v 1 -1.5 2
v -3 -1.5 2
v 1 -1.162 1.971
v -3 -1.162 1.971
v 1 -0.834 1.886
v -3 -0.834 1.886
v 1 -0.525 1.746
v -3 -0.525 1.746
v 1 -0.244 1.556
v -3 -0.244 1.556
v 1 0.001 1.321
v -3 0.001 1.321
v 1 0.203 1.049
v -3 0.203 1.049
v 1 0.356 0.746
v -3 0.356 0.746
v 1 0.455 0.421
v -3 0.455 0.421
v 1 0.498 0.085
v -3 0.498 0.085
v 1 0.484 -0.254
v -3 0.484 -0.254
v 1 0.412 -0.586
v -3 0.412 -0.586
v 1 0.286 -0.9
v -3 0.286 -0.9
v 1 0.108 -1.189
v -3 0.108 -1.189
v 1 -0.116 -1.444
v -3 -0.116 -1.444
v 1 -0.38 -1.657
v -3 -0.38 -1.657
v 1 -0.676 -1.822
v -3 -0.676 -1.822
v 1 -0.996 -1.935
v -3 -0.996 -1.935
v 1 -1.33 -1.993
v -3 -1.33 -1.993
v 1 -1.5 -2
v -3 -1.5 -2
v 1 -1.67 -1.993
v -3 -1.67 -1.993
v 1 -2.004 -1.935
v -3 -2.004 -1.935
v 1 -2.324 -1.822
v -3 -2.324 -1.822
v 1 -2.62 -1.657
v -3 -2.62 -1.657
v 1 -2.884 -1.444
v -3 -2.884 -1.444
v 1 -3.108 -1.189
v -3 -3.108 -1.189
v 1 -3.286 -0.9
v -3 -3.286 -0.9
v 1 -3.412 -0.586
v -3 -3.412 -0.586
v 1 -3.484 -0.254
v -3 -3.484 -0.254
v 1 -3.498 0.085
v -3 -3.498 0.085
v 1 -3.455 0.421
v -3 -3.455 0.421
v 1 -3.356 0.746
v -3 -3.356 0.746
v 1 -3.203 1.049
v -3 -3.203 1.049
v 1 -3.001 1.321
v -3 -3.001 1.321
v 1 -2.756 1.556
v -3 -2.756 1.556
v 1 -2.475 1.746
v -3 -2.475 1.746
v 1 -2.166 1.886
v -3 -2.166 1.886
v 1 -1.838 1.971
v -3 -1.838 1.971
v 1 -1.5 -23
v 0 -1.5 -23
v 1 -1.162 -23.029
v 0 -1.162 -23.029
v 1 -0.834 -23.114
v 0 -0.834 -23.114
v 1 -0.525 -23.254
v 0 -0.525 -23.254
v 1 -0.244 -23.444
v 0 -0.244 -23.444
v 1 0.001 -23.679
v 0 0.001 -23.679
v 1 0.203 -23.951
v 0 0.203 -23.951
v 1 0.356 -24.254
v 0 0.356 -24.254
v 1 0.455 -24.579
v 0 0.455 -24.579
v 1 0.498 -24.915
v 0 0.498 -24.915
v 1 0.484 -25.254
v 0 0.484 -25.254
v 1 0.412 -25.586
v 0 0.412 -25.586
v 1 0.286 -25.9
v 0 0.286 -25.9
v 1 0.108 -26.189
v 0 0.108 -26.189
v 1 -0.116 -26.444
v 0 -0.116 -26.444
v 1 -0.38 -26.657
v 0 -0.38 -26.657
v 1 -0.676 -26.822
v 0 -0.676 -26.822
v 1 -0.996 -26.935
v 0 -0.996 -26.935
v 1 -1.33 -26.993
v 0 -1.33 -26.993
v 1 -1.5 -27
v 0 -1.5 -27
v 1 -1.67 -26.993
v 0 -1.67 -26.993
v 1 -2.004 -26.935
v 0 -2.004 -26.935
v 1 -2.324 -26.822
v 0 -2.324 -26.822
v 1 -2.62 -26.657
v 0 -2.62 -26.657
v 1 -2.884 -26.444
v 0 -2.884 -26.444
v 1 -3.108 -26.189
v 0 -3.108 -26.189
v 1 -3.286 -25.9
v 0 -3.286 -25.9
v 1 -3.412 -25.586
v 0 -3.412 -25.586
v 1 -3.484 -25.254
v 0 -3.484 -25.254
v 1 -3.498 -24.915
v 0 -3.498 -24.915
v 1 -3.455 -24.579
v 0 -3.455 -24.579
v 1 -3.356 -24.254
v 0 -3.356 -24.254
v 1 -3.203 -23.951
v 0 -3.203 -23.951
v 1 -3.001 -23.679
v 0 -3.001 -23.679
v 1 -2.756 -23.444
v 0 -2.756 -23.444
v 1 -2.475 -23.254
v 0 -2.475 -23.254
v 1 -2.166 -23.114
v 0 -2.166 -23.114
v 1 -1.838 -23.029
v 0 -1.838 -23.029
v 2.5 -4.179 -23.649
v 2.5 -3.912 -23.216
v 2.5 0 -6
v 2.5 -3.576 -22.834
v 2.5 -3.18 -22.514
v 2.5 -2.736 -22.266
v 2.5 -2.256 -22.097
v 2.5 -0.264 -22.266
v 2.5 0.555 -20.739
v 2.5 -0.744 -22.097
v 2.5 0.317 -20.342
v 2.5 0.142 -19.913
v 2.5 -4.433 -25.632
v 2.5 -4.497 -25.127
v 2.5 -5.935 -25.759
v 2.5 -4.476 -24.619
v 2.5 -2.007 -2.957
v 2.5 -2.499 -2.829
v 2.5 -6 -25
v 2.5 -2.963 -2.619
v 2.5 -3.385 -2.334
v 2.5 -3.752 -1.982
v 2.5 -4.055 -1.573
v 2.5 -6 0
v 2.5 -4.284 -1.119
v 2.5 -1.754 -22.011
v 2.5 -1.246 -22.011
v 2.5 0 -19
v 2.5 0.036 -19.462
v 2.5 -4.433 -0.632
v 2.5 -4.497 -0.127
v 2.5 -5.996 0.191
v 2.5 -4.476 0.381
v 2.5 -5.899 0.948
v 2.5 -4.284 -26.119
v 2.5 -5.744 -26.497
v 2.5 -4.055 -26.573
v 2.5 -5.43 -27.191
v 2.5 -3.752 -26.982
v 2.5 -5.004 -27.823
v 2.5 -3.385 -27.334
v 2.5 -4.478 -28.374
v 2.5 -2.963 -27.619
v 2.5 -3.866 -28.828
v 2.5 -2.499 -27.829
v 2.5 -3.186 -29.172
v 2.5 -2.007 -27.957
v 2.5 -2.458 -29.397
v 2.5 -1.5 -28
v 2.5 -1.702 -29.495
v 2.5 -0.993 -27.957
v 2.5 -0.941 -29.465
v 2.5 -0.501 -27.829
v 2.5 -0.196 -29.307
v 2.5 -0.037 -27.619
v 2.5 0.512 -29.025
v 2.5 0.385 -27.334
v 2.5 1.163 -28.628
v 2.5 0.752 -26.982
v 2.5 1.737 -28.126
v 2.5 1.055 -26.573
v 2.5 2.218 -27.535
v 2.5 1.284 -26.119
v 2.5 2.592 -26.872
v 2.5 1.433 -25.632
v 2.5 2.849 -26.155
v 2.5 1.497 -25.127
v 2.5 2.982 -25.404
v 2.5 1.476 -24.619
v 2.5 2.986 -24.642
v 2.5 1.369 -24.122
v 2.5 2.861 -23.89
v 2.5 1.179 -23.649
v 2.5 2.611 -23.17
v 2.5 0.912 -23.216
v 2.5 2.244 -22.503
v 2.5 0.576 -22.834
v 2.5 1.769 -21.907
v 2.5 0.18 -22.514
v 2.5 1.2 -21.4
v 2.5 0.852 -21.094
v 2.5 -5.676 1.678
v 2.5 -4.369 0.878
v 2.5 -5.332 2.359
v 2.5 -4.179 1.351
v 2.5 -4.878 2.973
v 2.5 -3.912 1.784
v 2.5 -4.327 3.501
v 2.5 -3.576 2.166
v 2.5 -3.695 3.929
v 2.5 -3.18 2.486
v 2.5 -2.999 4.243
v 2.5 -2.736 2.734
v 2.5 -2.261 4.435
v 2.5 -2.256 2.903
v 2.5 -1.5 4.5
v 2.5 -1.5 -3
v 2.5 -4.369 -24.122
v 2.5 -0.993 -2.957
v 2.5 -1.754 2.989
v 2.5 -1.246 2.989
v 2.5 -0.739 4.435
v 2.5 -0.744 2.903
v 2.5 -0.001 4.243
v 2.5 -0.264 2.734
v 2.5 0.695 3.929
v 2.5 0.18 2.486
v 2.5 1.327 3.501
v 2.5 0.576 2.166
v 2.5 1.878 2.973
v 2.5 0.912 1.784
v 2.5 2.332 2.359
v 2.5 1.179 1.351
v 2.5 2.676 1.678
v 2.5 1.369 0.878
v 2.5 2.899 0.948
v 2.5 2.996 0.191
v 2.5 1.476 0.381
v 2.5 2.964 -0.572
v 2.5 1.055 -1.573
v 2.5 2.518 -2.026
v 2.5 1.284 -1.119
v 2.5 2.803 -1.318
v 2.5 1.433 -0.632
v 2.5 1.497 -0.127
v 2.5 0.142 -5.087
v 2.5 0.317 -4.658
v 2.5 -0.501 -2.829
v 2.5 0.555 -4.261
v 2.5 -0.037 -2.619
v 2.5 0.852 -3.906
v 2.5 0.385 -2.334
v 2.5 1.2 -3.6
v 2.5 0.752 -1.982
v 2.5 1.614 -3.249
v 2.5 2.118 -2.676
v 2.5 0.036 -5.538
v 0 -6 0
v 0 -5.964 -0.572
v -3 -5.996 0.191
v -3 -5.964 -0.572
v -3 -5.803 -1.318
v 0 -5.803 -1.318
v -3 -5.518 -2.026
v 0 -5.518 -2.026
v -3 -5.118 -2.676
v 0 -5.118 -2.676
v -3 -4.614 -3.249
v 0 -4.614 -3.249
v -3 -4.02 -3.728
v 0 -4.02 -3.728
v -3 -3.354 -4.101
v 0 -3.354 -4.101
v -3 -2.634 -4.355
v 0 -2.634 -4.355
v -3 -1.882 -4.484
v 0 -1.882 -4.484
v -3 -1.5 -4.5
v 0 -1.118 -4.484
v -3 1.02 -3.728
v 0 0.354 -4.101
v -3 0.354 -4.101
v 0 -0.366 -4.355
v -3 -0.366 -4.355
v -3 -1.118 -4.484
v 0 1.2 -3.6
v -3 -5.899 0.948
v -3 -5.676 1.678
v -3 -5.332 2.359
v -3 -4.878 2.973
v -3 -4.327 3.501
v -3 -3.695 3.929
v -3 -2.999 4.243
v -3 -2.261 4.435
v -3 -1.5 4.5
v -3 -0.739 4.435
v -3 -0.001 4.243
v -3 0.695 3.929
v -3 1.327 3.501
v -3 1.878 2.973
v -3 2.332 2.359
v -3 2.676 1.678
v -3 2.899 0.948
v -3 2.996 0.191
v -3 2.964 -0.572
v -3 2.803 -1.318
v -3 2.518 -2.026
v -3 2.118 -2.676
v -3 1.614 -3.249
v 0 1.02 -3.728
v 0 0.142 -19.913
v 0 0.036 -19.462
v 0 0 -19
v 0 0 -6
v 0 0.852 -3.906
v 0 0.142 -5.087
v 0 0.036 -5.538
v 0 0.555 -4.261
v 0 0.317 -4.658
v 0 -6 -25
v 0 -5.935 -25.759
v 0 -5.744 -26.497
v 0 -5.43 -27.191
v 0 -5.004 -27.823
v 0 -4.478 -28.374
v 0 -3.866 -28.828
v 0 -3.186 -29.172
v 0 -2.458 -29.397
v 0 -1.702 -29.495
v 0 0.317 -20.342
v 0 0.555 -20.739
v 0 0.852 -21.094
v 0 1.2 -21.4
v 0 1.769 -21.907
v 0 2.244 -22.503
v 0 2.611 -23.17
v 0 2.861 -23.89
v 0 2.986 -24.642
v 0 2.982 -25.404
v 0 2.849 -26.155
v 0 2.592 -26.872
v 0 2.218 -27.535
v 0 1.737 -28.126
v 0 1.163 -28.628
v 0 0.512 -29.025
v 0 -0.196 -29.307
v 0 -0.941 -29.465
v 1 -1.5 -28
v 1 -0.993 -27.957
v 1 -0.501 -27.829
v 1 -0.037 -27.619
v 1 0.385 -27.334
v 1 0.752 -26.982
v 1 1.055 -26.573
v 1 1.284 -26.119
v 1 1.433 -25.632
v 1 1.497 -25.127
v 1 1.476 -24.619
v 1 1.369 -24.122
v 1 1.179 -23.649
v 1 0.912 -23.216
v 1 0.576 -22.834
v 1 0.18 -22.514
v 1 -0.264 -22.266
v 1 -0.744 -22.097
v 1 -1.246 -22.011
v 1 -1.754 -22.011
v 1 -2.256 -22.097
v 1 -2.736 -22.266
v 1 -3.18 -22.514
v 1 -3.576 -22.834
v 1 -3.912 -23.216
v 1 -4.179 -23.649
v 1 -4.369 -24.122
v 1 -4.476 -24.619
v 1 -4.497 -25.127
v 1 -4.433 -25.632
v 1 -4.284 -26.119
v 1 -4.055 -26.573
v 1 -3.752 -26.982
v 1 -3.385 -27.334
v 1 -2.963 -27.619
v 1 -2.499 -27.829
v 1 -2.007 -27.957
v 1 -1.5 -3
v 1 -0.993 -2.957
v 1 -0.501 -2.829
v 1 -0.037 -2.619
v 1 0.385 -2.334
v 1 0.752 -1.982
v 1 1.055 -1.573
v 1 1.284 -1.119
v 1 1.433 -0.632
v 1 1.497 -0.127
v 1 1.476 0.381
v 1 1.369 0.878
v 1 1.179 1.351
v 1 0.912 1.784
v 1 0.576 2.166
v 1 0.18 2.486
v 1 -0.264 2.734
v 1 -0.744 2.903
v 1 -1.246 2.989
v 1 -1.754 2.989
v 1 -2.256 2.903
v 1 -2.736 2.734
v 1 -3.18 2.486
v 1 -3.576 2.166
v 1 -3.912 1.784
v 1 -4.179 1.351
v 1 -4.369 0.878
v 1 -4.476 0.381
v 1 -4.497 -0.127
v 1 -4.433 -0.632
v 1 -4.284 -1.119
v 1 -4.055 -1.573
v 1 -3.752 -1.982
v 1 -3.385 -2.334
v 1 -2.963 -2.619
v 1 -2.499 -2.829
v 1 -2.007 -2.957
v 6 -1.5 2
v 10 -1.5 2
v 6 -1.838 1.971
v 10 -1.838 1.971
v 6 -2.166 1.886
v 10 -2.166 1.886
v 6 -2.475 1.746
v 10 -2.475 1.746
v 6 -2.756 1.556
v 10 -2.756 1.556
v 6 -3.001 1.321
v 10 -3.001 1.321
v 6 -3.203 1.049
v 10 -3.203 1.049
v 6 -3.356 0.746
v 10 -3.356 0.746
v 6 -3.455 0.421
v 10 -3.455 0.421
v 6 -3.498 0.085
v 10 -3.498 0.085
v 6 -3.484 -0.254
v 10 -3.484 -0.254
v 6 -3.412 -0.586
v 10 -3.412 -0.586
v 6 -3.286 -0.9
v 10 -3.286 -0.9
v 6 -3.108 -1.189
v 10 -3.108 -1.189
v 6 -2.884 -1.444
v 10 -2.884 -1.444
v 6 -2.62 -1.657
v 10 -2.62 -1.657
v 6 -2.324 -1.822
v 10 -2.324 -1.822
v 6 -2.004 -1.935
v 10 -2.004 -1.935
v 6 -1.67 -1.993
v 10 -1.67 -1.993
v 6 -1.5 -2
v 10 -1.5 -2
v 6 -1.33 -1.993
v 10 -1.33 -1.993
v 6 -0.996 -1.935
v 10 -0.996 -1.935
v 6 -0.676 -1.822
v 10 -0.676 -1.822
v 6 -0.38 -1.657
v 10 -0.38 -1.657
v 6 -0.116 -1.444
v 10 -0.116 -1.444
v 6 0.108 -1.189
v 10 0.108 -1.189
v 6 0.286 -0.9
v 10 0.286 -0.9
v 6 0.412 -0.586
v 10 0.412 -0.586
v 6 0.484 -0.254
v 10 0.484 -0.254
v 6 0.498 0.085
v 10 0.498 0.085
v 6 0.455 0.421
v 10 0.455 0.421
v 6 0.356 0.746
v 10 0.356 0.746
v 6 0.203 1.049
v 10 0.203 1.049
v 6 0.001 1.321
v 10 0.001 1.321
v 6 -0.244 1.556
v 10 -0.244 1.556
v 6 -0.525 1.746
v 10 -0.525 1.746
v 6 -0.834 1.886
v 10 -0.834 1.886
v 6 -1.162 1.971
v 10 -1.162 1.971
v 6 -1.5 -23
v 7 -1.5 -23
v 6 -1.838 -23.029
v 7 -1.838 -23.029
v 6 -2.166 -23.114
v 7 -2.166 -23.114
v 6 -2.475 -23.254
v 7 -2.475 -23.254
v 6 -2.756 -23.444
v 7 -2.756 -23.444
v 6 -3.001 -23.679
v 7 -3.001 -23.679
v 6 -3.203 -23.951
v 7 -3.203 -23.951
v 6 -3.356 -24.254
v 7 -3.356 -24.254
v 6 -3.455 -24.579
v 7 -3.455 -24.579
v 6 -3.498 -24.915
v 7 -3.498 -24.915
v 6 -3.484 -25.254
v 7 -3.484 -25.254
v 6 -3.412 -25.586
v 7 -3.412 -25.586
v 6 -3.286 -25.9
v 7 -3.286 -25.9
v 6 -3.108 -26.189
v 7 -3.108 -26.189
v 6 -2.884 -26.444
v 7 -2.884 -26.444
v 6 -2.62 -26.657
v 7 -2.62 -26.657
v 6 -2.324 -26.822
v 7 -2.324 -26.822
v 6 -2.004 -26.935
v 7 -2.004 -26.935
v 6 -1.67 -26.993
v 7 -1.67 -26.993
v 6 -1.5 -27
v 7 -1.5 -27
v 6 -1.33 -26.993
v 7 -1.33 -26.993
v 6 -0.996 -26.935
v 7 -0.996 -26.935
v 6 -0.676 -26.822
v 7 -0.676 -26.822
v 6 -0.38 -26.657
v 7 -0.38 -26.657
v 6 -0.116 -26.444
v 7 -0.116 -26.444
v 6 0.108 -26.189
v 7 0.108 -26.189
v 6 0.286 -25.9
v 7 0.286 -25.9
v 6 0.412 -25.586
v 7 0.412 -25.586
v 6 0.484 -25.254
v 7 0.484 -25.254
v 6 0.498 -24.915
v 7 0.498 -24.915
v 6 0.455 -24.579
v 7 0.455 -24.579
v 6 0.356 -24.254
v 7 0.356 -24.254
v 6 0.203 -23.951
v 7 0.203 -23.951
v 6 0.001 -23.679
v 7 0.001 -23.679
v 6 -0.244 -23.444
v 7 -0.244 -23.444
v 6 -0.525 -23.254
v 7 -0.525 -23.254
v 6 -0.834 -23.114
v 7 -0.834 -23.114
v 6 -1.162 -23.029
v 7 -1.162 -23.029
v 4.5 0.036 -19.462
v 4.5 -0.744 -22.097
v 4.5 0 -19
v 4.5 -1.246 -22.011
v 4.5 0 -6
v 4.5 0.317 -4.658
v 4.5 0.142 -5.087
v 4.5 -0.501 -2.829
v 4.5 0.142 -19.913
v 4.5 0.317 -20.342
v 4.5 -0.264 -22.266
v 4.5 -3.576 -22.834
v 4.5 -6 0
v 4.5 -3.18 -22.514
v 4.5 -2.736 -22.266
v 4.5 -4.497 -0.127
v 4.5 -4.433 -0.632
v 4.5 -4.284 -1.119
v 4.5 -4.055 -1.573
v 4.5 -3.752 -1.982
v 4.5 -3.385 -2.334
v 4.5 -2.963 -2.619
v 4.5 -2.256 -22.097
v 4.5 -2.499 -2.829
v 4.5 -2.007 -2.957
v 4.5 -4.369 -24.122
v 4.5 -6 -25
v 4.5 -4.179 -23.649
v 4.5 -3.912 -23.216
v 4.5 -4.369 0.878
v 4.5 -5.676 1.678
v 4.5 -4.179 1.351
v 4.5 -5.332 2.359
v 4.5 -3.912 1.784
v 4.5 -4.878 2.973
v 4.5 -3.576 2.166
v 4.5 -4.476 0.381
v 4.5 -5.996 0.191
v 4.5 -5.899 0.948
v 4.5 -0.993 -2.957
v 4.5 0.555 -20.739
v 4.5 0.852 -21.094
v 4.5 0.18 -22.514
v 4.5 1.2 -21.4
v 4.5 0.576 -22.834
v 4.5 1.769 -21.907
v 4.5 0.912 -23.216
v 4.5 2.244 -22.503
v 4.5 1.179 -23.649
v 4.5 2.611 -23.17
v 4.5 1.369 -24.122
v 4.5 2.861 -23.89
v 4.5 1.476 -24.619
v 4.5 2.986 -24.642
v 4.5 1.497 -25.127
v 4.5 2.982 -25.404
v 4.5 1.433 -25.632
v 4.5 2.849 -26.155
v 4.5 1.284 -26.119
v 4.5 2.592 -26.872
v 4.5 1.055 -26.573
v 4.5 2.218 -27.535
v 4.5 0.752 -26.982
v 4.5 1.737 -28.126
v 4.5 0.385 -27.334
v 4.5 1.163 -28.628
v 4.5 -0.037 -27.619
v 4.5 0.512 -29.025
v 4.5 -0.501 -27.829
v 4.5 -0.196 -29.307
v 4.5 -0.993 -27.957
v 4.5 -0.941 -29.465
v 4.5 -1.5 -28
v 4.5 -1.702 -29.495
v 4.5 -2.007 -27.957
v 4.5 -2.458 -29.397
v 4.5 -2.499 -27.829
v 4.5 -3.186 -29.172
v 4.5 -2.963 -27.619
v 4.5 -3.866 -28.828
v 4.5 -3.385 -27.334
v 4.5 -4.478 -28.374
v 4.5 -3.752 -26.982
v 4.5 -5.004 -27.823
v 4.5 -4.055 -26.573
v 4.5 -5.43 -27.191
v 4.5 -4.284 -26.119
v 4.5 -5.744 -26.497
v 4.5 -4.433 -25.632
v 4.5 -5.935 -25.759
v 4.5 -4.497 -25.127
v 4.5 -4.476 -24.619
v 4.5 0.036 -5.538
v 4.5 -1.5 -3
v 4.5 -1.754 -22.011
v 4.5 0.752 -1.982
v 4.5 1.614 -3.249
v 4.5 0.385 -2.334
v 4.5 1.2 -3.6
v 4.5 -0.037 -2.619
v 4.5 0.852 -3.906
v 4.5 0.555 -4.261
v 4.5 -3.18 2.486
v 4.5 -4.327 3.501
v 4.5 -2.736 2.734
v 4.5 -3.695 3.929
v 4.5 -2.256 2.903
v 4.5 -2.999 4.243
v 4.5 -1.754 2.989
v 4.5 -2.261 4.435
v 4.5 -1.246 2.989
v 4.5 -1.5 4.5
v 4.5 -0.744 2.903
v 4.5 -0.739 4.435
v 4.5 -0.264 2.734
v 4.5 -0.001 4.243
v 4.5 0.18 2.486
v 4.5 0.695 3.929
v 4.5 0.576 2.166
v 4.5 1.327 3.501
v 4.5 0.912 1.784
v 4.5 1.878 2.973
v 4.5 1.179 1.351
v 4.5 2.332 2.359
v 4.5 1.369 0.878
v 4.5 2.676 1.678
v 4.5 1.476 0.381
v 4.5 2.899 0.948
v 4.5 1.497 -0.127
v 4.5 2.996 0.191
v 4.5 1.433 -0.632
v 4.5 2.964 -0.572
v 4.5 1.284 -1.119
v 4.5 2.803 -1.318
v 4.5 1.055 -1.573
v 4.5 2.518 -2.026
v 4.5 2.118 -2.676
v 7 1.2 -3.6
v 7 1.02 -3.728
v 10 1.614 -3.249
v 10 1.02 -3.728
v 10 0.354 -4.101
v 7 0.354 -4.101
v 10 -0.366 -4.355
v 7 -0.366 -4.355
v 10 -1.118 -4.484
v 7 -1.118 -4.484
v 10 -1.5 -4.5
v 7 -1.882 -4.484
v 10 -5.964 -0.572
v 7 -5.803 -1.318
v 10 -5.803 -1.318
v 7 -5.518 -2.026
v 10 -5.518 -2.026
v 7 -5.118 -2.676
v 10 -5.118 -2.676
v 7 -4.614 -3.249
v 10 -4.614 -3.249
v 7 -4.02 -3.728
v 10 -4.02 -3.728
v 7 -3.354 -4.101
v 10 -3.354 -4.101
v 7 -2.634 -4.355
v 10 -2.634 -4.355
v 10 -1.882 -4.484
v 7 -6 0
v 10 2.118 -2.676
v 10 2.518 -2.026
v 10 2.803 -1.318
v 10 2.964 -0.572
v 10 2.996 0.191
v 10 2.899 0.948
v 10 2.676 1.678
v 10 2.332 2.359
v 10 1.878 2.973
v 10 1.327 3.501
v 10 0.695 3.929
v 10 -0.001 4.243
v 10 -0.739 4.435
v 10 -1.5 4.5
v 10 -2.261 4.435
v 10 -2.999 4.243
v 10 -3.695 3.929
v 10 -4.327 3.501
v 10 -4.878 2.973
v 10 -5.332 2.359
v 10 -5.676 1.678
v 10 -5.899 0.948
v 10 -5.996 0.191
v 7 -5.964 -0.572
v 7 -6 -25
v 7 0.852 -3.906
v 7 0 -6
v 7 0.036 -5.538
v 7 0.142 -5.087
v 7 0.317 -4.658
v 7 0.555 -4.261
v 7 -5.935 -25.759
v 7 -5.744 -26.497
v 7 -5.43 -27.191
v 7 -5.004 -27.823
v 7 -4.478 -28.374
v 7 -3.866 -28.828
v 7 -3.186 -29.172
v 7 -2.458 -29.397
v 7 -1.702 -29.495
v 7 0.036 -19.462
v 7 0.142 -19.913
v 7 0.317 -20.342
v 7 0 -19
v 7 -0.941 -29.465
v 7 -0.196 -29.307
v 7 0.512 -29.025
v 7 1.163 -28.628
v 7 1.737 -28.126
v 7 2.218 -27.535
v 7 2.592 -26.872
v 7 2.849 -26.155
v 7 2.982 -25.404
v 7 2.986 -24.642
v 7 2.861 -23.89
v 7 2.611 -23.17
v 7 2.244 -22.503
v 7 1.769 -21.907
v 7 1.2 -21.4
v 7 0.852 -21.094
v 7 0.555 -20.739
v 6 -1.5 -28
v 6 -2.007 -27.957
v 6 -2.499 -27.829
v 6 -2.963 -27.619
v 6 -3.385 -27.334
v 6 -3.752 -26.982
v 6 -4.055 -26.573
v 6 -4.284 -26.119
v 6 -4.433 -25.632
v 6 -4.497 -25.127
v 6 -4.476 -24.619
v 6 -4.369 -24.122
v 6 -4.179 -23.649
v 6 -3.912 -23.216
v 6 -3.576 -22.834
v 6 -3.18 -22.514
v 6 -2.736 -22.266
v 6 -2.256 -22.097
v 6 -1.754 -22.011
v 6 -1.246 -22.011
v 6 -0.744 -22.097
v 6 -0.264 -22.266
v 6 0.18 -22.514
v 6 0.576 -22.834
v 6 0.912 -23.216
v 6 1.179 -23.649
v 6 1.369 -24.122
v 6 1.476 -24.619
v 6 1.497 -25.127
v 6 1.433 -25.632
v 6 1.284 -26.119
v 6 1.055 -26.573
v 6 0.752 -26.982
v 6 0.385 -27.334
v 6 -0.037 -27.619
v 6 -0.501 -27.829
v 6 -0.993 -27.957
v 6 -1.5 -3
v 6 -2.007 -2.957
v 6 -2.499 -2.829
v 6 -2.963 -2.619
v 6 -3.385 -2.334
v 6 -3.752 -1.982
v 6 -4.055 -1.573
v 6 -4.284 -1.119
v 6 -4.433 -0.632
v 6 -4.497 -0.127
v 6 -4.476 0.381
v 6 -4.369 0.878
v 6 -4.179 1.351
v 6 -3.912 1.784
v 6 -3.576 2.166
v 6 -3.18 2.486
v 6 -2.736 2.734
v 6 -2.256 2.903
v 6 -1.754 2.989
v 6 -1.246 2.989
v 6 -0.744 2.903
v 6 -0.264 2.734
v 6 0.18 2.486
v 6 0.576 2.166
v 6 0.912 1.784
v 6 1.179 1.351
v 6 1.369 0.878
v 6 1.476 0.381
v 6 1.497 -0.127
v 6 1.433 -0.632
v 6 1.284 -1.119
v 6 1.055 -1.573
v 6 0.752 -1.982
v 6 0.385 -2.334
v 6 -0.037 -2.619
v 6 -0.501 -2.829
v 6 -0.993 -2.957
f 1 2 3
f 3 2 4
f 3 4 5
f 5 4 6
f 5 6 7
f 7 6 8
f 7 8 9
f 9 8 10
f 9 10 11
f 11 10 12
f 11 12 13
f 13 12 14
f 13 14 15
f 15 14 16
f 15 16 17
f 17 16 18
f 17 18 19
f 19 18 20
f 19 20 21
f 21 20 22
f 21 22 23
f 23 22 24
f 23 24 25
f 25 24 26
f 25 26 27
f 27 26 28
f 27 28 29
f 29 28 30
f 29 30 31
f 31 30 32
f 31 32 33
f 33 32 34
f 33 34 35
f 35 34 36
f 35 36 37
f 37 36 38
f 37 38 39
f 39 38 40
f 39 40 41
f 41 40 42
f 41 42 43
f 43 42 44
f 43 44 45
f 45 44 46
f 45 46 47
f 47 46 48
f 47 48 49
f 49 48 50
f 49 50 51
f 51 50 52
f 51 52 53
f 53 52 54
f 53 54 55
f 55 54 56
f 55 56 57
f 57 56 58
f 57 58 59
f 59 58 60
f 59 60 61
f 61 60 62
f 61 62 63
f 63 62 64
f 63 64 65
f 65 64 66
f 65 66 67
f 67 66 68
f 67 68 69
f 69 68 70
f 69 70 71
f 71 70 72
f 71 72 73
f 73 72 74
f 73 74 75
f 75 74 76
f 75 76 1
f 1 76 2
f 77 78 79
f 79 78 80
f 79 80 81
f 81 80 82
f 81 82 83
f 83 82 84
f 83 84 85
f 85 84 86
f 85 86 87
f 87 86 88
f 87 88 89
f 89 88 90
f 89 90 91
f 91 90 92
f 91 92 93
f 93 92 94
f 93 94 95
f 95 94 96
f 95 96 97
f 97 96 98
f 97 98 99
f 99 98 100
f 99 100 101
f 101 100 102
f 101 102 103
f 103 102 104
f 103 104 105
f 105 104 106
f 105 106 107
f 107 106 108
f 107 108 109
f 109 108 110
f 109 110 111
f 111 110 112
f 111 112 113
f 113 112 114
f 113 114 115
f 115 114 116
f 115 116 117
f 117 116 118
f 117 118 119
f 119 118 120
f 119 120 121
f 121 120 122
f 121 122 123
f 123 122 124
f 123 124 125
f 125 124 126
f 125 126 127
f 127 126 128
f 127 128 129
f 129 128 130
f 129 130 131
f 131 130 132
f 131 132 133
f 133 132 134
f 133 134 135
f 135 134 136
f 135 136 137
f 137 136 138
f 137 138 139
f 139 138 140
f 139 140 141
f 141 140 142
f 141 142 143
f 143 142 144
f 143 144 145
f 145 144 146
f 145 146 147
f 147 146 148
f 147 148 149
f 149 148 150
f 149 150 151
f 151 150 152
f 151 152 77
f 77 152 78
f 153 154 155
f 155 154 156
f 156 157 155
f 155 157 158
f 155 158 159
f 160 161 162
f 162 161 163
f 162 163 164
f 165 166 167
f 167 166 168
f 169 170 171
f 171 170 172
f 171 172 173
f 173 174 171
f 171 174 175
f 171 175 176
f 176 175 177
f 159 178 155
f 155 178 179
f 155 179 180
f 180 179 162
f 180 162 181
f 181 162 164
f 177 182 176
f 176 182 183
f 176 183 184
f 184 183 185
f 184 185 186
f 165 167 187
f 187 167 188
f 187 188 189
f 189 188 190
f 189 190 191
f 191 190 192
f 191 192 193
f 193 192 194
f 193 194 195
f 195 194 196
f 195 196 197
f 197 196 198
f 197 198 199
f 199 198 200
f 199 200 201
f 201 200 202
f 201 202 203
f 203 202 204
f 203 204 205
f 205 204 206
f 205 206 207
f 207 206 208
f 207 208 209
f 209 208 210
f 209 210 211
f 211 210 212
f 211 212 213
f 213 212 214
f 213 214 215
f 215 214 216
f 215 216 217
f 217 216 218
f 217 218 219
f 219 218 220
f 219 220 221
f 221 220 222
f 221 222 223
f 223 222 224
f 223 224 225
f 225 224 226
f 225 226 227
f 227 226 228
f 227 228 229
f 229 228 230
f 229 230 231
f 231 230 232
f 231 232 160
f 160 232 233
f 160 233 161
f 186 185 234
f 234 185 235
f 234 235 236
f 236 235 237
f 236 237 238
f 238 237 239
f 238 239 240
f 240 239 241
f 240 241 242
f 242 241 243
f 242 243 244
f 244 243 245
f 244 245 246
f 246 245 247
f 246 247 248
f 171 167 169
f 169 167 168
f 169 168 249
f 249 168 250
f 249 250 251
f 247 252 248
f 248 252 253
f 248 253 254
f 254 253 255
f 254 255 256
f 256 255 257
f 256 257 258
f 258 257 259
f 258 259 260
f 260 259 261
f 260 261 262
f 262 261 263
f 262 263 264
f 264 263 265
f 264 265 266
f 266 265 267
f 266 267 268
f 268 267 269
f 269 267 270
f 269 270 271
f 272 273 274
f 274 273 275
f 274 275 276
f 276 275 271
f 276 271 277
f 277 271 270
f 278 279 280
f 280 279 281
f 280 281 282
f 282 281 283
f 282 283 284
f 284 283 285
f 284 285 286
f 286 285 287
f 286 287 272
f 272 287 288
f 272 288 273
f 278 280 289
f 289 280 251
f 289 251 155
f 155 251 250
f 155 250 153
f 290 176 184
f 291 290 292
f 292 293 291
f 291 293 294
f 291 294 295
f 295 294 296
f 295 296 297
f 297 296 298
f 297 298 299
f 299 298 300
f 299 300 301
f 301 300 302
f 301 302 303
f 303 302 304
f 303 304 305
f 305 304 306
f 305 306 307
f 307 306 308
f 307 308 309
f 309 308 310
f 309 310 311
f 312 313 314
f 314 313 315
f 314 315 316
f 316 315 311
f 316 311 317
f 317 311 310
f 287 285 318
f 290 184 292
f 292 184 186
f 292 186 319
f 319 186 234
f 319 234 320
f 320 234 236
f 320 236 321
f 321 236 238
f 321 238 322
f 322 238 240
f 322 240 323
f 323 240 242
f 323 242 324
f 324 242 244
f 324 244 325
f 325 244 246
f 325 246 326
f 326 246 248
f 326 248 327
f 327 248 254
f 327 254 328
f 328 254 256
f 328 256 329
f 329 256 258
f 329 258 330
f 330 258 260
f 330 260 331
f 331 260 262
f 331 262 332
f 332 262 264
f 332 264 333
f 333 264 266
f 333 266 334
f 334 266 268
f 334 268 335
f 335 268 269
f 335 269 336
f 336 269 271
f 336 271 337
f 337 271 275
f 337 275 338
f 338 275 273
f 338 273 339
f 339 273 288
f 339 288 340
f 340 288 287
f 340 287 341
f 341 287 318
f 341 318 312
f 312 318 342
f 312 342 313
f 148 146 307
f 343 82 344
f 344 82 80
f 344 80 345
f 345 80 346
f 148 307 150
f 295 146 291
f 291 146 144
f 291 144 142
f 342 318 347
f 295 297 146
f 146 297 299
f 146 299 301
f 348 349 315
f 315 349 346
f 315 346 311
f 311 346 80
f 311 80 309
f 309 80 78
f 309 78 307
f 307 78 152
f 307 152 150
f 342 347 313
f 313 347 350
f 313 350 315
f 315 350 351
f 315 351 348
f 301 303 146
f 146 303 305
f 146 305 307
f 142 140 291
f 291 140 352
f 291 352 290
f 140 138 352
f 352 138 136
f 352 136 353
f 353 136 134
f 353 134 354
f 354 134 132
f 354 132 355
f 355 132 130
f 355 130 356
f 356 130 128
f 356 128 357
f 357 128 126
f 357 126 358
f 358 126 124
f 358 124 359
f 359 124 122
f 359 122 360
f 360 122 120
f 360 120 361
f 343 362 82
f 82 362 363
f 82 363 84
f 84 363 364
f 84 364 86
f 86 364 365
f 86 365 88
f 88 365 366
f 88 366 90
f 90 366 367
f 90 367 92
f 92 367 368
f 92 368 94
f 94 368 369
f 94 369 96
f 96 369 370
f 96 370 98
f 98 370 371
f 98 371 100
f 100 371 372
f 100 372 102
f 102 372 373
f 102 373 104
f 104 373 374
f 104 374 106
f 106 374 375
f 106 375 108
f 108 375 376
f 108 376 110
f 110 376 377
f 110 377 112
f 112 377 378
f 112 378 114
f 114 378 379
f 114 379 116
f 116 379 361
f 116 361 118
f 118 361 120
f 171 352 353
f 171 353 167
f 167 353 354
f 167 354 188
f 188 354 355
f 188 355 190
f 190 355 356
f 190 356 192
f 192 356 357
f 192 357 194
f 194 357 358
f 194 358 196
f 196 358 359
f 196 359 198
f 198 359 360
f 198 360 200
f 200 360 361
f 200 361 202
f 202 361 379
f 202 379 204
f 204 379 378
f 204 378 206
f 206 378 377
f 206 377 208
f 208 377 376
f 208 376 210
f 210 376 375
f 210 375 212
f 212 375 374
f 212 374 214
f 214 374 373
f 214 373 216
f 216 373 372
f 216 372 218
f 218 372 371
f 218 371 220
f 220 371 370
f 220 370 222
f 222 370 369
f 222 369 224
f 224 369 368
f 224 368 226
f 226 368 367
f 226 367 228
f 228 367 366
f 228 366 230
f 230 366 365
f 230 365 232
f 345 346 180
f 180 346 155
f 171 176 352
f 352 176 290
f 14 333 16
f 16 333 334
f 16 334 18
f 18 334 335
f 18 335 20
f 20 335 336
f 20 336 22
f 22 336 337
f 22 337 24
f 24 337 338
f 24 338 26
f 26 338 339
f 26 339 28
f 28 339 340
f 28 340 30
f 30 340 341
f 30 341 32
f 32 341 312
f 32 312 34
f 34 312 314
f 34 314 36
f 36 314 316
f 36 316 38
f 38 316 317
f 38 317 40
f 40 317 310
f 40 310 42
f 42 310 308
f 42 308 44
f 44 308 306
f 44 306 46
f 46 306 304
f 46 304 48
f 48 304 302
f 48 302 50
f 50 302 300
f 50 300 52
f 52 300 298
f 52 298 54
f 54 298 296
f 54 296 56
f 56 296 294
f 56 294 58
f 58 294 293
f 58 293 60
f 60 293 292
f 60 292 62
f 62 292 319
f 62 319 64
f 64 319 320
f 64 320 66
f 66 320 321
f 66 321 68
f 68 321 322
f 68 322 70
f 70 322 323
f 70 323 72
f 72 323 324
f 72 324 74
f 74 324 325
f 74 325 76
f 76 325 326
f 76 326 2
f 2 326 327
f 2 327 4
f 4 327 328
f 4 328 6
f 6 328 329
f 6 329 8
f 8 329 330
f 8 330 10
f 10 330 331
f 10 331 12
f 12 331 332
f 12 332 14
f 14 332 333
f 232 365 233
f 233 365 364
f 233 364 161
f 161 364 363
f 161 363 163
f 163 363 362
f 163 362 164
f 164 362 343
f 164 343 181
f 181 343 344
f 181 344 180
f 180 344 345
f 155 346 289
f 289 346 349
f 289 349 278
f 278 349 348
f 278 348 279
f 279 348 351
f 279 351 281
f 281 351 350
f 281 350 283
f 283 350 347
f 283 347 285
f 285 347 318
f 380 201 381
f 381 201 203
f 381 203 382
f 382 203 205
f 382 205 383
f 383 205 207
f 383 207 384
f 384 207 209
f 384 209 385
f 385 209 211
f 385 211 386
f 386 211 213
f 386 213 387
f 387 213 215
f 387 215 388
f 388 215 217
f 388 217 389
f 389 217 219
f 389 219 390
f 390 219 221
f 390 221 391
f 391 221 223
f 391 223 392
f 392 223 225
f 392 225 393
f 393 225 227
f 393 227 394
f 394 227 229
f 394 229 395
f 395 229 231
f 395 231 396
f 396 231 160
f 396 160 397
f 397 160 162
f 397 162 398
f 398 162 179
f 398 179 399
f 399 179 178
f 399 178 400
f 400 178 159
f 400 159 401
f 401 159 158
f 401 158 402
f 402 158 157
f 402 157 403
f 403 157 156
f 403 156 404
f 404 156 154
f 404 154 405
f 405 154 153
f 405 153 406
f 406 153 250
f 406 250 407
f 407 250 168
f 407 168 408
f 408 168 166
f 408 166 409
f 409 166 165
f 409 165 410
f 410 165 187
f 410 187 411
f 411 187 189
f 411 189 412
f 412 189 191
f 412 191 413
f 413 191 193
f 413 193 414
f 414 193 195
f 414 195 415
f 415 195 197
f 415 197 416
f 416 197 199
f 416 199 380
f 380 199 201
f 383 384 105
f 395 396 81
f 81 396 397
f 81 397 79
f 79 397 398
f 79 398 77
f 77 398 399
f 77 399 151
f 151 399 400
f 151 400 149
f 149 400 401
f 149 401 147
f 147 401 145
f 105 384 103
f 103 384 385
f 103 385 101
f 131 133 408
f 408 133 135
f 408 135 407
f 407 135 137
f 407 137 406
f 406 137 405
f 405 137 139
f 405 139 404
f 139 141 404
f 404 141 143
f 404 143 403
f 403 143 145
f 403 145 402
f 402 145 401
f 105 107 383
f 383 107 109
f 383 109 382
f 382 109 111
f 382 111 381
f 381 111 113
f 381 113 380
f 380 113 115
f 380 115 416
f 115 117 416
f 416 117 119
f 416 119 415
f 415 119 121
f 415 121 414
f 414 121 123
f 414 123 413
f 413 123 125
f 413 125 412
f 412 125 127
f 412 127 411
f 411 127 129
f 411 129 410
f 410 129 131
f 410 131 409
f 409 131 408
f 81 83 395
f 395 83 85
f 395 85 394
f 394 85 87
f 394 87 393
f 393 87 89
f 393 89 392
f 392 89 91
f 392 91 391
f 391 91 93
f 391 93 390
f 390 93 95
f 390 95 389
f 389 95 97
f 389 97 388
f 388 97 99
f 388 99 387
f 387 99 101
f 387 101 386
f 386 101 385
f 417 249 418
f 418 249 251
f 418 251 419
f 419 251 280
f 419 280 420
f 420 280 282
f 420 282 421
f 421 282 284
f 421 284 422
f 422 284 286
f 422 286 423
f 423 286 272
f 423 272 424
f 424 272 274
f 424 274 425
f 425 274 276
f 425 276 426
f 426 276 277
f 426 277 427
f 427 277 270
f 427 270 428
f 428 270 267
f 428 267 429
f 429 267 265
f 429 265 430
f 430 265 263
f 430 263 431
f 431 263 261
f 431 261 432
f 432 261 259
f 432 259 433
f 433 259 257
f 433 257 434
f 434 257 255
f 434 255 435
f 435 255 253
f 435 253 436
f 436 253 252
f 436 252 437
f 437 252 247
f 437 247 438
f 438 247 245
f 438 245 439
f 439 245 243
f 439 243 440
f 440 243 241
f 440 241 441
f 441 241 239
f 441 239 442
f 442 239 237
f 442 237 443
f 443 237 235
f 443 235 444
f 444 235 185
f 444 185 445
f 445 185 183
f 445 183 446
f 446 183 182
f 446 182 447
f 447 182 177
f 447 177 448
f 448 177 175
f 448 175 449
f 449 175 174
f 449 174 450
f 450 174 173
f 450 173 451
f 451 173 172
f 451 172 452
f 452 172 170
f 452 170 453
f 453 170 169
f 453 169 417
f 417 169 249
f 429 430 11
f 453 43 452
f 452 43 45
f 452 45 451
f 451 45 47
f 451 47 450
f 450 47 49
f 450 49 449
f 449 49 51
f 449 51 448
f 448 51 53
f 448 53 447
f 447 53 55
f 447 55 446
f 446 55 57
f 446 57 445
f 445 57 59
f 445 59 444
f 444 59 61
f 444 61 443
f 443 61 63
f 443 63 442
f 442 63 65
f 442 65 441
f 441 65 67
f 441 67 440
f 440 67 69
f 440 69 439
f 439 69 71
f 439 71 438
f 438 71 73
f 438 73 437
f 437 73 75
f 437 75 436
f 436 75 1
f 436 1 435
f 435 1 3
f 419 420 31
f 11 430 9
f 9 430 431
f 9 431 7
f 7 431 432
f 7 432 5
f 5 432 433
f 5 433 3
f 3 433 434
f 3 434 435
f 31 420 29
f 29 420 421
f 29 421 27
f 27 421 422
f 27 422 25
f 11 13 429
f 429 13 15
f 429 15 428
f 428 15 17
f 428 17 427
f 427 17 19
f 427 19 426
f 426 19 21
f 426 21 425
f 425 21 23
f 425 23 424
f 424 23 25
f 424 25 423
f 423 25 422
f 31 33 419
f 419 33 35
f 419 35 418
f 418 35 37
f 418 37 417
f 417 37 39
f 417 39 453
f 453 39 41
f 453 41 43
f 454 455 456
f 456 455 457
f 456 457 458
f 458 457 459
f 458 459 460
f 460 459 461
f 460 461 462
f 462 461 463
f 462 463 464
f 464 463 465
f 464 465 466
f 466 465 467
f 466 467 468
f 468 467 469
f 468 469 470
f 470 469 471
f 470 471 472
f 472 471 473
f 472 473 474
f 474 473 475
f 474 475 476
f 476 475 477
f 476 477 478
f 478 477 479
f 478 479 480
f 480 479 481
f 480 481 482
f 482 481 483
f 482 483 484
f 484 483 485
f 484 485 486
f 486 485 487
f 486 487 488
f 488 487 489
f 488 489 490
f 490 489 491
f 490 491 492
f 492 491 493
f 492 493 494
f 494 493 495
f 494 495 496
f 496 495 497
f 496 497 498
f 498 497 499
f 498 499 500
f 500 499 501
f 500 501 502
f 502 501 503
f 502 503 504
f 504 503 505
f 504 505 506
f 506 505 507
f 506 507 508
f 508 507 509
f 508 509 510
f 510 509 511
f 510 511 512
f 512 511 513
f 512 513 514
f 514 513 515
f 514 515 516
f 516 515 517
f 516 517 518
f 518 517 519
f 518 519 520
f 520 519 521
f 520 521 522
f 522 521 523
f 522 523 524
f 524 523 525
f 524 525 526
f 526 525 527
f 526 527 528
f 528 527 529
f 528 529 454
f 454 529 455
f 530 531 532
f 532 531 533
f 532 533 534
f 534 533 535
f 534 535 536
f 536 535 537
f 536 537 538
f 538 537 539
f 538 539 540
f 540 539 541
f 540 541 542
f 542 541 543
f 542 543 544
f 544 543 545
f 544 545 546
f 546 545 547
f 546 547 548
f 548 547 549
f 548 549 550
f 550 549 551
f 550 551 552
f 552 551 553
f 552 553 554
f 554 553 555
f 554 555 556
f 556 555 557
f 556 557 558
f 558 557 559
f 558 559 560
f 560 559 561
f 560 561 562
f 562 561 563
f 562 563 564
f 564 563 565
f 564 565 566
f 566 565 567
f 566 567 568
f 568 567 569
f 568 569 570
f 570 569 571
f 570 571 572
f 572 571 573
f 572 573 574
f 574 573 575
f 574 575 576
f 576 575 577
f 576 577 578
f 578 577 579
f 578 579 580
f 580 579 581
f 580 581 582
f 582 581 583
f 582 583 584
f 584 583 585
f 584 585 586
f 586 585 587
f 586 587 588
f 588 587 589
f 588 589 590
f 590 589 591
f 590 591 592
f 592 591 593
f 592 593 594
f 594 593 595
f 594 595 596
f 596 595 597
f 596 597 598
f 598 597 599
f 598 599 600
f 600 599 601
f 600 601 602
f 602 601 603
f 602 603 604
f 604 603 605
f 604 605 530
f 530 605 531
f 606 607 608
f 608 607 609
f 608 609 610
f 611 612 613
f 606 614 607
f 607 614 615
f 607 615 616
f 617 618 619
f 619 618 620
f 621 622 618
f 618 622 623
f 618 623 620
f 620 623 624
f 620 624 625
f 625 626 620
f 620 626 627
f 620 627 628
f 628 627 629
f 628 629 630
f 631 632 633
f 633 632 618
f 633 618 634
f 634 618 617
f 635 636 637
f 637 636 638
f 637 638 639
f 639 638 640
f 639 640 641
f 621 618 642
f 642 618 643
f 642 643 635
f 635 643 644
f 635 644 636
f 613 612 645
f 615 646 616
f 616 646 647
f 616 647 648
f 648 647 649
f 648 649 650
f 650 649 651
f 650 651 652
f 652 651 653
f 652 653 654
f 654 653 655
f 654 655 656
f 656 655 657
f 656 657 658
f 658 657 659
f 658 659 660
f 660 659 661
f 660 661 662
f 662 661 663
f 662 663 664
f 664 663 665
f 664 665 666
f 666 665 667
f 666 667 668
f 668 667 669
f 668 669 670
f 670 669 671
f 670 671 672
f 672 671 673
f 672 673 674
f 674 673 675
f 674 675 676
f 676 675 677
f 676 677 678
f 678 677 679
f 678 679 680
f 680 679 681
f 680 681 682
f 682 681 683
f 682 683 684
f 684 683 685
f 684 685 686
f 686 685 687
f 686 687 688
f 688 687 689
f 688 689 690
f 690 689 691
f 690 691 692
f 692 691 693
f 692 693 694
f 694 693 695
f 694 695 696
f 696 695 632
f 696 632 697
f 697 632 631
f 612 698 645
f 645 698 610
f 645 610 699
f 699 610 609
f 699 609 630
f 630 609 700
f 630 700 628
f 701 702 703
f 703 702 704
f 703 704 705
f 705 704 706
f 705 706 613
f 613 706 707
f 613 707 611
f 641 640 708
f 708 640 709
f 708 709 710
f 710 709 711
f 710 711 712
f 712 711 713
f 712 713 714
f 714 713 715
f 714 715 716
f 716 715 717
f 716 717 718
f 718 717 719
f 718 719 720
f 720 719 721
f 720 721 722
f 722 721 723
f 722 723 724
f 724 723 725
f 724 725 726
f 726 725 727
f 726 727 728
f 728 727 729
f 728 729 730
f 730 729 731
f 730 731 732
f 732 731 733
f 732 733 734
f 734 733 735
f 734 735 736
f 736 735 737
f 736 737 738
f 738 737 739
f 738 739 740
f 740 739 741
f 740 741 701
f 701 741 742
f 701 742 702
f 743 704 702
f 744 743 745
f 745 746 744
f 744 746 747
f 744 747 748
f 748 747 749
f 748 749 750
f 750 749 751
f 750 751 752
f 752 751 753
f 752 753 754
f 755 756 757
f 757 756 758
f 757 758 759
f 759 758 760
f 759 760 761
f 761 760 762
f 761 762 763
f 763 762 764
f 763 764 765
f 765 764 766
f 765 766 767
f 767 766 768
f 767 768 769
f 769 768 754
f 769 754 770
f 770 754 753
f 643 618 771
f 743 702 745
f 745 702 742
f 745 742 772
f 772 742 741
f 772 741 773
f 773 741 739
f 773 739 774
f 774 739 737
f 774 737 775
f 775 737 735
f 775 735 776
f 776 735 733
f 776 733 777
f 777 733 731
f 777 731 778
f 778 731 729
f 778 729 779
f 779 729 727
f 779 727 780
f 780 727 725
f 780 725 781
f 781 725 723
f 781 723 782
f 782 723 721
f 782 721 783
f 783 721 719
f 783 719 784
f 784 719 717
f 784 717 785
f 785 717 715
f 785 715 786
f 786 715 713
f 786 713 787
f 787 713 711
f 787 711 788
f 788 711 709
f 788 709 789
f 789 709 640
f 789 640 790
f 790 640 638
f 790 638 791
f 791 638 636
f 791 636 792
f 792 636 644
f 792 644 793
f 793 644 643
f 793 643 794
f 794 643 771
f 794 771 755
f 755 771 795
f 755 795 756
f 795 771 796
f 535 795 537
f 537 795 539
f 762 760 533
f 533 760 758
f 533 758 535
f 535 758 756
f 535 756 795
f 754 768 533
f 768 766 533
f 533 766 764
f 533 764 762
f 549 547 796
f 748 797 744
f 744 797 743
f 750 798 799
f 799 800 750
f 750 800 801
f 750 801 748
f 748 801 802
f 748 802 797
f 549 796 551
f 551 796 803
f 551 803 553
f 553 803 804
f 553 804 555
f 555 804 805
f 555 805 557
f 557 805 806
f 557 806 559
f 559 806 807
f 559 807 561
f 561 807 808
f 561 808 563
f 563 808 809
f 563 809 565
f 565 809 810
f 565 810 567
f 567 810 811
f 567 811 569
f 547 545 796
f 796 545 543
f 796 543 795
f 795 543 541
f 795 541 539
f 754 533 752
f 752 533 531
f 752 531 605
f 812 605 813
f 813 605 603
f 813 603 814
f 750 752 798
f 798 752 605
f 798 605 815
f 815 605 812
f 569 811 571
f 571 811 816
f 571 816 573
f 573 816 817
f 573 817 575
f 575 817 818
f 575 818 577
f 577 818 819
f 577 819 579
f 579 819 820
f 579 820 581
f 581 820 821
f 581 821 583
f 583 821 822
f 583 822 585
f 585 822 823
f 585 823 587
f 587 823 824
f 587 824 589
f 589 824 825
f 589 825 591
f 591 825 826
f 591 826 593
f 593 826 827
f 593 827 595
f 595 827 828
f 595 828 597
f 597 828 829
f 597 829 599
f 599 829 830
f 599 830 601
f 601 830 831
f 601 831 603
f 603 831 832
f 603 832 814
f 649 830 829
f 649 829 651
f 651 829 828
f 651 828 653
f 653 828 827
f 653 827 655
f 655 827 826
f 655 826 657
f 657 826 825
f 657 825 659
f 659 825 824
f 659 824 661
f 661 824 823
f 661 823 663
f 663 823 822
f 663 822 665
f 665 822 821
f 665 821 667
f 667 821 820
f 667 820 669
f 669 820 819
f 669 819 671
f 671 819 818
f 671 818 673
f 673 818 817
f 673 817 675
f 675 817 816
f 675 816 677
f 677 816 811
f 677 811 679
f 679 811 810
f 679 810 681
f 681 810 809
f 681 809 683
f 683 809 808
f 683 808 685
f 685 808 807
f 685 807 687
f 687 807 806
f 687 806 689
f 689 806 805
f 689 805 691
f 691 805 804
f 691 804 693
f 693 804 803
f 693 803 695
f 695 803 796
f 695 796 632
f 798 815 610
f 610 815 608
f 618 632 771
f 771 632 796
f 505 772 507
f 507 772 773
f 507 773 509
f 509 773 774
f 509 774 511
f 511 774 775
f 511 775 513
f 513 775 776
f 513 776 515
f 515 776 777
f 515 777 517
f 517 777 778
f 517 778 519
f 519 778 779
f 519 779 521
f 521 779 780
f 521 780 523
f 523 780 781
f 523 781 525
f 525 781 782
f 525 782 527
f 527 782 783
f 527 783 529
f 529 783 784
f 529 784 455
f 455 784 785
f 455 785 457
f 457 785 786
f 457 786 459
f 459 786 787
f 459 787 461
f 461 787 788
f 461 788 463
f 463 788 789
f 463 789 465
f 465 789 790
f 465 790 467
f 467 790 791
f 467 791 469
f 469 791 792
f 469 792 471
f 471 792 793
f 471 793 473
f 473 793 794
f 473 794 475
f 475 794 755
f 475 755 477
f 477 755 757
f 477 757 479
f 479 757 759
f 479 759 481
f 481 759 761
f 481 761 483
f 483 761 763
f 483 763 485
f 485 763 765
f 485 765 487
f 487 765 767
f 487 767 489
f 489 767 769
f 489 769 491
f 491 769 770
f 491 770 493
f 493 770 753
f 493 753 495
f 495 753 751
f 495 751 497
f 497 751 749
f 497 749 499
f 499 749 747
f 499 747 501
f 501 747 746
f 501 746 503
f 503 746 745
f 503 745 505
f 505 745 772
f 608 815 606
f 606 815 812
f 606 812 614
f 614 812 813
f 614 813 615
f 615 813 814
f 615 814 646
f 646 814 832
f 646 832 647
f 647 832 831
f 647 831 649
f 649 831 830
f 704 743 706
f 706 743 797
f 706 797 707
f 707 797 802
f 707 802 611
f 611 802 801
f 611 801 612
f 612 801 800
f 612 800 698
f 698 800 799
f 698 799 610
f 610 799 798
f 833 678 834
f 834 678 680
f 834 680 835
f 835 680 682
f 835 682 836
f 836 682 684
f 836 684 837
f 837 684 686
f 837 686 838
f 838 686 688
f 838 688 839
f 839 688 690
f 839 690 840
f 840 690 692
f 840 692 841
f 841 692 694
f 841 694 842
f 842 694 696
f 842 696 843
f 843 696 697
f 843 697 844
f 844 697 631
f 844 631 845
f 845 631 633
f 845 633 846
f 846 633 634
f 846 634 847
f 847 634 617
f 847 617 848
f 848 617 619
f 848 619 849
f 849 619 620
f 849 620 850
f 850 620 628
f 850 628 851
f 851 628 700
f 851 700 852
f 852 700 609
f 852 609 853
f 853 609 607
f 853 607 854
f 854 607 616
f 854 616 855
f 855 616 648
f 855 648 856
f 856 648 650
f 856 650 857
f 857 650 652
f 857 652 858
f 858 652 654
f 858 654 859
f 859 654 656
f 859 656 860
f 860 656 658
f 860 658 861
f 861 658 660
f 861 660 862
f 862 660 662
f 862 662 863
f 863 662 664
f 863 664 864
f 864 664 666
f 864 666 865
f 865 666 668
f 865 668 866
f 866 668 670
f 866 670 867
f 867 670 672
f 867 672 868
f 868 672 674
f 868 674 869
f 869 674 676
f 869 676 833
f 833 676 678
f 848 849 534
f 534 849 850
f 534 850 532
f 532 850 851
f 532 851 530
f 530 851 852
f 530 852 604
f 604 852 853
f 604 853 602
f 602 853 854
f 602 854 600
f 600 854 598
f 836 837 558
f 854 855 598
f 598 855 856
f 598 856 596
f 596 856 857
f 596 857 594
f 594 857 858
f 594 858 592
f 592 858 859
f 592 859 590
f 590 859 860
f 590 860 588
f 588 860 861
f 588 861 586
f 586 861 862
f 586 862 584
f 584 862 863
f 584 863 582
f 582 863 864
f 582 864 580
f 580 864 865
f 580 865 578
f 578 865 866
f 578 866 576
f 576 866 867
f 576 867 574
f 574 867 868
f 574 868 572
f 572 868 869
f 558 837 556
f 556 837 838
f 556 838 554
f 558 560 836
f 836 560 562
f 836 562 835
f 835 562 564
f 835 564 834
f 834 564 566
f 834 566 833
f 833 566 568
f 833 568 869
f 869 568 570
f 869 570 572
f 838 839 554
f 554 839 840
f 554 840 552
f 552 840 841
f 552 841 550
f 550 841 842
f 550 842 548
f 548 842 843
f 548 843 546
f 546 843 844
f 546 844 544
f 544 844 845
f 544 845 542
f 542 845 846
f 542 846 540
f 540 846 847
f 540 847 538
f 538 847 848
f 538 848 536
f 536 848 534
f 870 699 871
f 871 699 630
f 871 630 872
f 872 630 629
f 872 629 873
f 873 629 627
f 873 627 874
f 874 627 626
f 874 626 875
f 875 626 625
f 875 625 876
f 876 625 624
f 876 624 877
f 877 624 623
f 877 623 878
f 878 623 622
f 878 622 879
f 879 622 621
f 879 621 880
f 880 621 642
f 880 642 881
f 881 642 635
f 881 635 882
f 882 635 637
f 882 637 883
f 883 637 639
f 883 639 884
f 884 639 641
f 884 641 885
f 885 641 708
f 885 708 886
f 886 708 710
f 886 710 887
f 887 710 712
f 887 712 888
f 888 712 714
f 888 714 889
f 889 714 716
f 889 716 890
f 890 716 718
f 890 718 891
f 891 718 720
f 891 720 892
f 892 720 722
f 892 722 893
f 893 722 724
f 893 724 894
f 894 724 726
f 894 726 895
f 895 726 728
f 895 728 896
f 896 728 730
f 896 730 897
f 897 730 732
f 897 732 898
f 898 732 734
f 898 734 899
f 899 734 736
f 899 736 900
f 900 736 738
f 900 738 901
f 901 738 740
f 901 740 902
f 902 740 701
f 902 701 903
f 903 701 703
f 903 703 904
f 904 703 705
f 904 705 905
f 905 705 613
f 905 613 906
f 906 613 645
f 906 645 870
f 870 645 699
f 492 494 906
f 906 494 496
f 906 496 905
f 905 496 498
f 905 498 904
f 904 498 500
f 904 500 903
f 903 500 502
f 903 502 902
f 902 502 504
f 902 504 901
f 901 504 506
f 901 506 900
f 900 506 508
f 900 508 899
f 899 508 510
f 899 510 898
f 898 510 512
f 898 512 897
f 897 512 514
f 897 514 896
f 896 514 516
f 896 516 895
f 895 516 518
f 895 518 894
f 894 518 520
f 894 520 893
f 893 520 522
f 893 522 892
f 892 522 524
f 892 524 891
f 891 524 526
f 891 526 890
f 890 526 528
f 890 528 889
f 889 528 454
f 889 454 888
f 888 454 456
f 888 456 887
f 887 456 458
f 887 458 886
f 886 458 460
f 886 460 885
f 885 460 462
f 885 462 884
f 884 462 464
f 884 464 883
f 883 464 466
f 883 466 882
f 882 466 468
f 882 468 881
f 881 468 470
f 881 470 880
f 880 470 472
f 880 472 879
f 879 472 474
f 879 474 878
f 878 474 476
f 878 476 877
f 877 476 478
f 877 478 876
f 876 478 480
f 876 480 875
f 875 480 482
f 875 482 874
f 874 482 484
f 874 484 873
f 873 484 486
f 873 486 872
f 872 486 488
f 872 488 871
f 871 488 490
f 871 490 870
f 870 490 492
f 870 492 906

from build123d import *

# Parameters (mm, degrees)
SKETCH_1_R               = 4.5
SKETCH_1_W               = 25
SKETCH_1_H               = 6
EXTRUDE_1_DEPTH          = 2.5
EXTRUDE_START            = -3
SKETCH_1_5_R             = 4.5
EXTRUDE_3_DEPTH          = 3
CUT_EXTRUDE_2_DEPTH      = 31.253099015
CUT_EXTRUDE_2_DEPTH_BACK = 31.253099015
SKETCH_1_4_R             = 2
FILLET_1_R               = 3
SKETCH_2_R               = 3
CUT_EXTRUDE_3_DEPTH      = 1.5


with BuildPart() as part:
    # 草图1 → 凸台-拉伸1 (new body)
    with BuildSketch(Plane(origin=(0, 0, 0), x_dir=(0, 0, -1), z_dir=(1, 0, 0))):
        with Locations((0, -1.5)):
            Circle(SKETCH_1_R)
        with Locations((25, -1.5)):
            Circle(SKETCH_1_R)
        with Locations((12.5, -3)):
            Rectangle(SKETCH_1_W, SKETCH_1_H)
    extrude(amount=EXTRUDE_1_DEPTH)

    # 草图1<5> → 凸台-拉伸3 (add)
    with BuildSketch(Plane(origin=(0, 0, 0), x_dir=(0, 0, -1), z_dir=(1, 0, 0)).offset(EXTRUDE_START)):
        with Locations((0, -1.5)):
            Circle(SKETCH_1_5_R)
    extrude(amount=EXTRUDE_3_DEPTH)

    # 草图1<4> → 切除-拉伸2 (cut, two sides: drawn at the far end of the back side and taken through both)
    with BuildSketch(Plane(origin=(0, 0, 0), x_dir=(0, 0, -1), z_dir=(1, 0, 0)).offset(-CUT_EXTRUDE_2_DEPTH_BACK)):
        with Locations((0, -1.5)):
            Circle(SKETCH_1_4_R)
        with Locations((25, -1.5)):
            Circle(SKETCH_1_4_R)
    extrude(amount=CUT_EXTRUDE_2_DEPTH + CUT_EXTRUDE_2_DEPTH_BACK, mode=Mode.SUBTRACT)

    # 圆角1
    fillet_1_edges = [part.edges().sort_by_distance(p)[0] for p in [
        (1.25, 0, -20.757359313),
        (1.25, 0, -4.242640687),
    ]]
    fillet(fillet_1_edges, radius=FILLET_1_R)

    # 草图2 → 切除-拉伸3 (cut)
    with BuildSketch(Plane(origin=(2.5, 0, 0), x_dir=(0, 0, -1), z_dir=(1, 0, 0))):
        with Locations((0, -1.5)):
            Circle(SKETCH_2_R)
        with Locations((25, -1.5)):
            Circle(SKETCH_2_R)
    extrude(amount=-CUT_EXTRUDE_3_DEPTH, mode=Mode.SUBTRACT)


with BuildPart() as body_2:
    # 镜向2: mirrored copy
    add(part.part.mirror(Plane(origin=(3.5, 0, 0), x_dir=(0, 0, 1), z_dir=(1, 0, 0))))


solid = Compound([part.part, body_2.part])
